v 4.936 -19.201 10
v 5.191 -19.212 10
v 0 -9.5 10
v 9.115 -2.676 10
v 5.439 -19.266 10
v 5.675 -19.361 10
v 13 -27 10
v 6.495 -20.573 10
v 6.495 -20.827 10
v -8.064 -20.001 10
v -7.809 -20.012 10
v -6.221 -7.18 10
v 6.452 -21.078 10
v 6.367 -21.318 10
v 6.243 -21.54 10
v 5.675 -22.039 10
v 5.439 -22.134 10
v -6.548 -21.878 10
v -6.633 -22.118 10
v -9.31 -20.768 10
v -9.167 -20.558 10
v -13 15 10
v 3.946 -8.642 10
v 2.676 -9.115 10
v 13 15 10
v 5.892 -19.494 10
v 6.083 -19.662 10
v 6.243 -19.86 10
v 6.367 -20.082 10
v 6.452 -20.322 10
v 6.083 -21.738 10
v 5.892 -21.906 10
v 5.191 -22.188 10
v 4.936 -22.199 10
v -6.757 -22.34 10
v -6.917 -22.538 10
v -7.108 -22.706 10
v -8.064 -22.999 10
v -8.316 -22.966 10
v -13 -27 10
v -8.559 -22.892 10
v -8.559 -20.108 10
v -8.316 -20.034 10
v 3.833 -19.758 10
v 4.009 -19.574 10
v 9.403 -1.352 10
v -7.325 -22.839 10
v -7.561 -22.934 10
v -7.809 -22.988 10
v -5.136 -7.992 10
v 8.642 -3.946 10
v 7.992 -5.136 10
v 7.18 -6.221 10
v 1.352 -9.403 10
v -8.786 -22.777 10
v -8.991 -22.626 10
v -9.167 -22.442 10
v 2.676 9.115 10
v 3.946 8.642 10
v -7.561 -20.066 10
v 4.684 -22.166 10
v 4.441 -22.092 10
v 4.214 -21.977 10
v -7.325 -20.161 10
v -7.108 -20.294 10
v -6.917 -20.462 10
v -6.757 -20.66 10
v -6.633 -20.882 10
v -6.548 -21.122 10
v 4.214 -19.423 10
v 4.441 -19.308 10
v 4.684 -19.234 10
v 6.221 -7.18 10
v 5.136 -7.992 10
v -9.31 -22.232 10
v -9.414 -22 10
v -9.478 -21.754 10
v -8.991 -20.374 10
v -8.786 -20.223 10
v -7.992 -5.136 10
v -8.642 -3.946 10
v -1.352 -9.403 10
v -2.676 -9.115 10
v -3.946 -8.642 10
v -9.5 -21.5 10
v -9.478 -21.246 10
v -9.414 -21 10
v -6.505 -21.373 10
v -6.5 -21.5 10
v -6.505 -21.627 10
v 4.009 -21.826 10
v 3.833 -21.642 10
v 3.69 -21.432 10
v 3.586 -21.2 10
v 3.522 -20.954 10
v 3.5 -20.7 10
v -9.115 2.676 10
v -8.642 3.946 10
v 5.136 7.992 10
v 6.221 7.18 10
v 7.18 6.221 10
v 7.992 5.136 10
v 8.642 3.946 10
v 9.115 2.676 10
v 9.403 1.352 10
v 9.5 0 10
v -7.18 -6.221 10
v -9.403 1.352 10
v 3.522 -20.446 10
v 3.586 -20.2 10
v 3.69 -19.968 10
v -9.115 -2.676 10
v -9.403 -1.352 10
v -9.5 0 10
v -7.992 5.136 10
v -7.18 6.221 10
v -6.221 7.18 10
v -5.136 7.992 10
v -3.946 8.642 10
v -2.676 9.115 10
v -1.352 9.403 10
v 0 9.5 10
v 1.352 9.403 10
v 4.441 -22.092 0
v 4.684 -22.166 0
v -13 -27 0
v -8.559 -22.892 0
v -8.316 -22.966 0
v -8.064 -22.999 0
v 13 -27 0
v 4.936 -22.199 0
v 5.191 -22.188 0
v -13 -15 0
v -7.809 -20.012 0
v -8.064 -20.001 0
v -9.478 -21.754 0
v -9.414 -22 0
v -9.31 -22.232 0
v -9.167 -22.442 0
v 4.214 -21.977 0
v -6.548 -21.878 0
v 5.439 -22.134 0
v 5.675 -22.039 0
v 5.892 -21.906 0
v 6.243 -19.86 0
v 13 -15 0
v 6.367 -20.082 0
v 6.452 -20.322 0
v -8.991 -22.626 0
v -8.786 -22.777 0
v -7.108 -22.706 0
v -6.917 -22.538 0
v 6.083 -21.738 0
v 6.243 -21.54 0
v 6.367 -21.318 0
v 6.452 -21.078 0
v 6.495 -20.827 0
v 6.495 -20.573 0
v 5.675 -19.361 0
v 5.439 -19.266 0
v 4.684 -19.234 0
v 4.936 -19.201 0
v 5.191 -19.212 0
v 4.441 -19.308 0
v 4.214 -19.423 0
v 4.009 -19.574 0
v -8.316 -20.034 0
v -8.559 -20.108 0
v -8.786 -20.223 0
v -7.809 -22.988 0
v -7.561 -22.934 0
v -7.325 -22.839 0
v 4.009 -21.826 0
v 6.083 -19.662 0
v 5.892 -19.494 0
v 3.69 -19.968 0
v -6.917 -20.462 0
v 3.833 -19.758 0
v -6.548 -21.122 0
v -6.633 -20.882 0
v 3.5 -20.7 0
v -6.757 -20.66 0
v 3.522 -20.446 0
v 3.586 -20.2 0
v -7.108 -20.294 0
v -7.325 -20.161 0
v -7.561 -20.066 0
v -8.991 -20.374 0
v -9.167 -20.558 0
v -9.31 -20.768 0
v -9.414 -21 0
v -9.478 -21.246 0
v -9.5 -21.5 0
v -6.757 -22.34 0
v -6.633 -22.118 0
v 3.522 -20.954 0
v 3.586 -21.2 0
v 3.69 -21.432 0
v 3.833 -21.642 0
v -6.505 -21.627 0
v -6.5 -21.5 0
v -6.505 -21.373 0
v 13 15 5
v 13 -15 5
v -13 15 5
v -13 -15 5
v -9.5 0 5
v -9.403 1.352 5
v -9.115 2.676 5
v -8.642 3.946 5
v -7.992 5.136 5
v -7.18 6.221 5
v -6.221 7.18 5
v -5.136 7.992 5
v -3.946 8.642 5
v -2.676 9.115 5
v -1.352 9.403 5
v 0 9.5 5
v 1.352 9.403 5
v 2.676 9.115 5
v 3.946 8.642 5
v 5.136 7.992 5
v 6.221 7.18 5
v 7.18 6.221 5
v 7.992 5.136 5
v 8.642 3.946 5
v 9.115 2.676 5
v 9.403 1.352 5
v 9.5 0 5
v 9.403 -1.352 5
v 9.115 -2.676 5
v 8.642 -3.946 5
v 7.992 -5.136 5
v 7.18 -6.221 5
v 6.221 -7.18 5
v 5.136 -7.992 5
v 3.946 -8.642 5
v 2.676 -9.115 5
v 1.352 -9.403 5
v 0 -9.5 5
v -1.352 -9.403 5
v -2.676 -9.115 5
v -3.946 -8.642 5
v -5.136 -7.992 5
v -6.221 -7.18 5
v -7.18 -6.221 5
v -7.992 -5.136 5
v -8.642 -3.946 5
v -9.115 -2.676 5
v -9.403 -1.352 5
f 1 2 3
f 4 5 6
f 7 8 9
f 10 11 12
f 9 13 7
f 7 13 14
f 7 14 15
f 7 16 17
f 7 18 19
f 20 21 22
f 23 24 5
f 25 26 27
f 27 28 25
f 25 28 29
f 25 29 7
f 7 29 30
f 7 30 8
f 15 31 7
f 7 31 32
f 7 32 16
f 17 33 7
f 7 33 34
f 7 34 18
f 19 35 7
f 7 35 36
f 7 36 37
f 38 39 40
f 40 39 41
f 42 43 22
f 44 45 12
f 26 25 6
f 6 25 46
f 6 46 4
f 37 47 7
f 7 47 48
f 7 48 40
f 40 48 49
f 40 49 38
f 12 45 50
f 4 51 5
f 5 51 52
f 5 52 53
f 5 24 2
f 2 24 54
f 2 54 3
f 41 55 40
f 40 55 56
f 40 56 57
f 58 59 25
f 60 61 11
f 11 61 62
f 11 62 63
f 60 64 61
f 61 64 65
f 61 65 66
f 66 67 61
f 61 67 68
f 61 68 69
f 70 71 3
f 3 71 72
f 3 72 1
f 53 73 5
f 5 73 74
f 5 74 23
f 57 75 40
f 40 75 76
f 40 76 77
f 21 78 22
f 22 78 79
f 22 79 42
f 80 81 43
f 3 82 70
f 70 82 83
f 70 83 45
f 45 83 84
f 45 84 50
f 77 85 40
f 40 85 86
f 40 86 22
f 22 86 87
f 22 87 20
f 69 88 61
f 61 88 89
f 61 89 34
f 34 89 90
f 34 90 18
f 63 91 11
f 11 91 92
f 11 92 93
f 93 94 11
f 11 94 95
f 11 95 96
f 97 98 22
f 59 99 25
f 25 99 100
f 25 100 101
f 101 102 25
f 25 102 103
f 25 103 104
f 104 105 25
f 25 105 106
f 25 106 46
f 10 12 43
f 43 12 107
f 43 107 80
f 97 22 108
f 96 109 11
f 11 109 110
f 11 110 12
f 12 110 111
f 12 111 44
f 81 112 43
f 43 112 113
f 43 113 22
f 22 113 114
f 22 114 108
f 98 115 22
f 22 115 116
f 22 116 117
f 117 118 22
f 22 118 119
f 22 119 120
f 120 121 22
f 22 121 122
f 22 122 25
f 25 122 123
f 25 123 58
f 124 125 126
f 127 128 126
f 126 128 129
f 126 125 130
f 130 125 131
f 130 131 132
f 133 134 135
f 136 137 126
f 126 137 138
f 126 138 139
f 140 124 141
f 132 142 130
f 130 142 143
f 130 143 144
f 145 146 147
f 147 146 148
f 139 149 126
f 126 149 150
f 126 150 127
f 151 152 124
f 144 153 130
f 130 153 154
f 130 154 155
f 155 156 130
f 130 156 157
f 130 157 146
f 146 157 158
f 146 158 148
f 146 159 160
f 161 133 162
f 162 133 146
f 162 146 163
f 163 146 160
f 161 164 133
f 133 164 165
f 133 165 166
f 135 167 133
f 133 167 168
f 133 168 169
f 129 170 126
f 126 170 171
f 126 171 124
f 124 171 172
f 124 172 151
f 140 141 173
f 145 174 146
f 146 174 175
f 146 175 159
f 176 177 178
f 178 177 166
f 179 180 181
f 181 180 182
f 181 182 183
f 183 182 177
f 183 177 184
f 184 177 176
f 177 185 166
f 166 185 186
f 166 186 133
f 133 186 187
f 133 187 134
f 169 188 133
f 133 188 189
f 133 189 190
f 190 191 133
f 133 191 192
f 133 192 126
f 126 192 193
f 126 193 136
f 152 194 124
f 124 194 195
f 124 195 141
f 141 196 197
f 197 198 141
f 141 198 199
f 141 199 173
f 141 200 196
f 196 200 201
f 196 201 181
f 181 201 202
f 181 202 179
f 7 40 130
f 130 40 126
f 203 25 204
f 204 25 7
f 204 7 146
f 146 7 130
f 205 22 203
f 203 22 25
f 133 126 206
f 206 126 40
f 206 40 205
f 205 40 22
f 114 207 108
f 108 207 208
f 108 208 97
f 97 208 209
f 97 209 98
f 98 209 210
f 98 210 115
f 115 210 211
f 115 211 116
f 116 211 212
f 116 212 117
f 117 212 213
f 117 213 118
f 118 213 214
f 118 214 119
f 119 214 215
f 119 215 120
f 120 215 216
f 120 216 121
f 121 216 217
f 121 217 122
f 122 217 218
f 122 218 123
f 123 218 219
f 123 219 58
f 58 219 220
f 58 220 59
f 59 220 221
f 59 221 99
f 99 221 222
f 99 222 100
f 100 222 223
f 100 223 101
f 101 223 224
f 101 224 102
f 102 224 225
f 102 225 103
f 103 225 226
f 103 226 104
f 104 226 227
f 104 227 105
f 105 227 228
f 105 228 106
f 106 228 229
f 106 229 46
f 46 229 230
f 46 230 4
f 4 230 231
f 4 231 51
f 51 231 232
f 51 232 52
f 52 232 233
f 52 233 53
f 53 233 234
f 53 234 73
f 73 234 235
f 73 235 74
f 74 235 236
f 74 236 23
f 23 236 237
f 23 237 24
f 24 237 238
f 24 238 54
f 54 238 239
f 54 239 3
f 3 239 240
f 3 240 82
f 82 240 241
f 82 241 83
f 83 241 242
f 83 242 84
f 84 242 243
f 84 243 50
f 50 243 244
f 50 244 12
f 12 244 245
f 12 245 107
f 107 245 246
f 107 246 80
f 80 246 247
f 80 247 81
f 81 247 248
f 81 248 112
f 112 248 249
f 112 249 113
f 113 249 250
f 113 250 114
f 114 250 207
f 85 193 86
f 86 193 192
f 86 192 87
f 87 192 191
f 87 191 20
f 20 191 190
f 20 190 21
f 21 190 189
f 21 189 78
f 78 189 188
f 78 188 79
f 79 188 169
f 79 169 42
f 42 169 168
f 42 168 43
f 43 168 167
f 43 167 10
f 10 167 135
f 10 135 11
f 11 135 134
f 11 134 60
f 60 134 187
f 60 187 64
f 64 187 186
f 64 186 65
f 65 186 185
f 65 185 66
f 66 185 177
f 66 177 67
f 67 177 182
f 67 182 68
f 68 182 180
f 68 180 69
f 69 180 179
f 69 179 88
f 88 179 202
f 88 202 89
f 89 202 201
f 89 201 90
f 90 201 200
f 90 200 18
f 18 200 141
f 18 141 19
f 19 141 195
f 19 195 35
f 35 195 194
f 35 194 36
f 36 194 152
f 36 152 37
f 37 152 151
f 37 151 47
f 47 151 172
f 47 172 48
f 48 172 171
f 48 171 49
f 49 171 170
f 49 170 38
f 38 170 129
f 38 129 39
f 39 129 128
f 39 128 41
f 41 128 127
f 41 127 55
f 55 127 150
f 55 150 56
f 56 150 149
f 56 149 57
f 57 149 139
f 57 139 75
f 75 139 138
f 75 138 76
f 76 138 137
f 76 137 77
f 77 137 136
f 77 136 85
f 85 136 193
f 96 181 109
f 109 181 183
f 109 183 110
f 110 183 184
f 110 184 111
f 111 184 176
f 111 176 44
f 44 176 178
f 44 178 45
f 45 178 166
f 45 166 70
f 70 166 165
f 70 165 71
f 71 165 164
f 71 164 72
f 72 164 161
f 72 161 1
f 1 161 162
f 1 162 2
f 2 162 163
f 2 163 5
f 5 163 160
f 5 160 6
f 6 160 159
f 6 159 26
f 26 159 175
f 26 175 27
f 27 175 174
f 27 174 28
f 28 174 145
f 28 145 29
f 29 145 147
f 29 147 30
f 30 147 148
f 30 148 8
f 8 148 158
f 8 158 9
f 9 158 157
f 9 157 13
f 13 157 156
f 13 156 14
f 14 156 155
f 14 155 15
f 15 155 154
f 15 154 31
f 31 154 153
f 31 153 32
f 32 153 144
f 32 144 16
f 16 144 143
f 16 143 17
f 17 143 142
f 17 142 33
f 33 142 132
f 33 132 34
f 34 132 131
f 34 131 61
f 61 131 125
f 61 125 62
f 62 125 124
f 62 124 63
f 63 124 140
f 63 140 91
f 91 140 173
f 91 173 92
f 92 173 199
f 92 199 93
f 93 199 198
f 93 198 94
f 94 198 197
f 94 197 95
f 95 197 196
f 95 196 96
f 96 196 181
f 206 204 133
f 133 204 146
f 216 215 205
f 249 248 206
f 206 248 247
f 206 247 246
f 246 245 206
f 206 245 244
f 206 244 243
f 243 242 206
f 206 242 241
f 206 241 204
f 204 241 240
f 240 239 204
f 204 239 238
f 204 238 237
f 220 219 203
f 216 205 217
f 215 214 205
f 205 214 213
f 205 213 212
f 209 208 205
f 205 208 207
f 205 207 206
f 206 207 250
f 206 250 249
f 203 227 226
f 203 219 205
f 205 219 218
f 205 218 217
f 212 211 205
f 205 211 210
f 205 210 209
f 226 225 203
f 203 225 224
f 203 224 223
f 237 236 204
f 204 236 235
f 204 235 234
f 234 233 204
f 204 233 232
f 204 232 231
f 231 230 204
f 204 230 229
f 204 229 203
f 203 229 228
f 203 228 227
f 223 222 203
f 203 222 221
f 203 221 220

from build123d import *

# Parameters (mm, degrees)
CROQUIS1_W              = 26
CROQUIS1_H              = 42
CROQUIS1_R              = 9.5
CROQUIS1_R_2            = 1.5
SALIENTE_EXTRUIR1_DEPTH = 10
CROQUIS2_W              = 5
CROQUIS2_H              = 30
CORTAR_EXTRUIR1_DEPTH   = 40


with BuildPart() as part:
    # Croquis1 → Saliente-Extruir1 (new body)
    with BuildSketch(Plane.XY):
        with Locations((0, -6)):
            Rectangle(CROQUIS1_W, CROQUIS1_H)
        Circle(CROQUIS1_R, mode=Mode.SUBTRACT)
        with Locations((-8, -21.5)):
            Circle(CROQUIS1_R_2, mode=Mode.SUBTRACT)
        with Locations((5, -20.7)):
            Circle(CROQUIS1_R_2, mode=Mode.SUBTRACT)
    extrude(amount=SALIENTE_EXTRUIR1_DEPTH)

    # Croquis2 → Cortar-Extruir1 (cut)
    with BuildSketch(Plane.ZY.offset(13)):
        with Locations((2.5, 0)):
            Rectangle(CROQUIS2_W, CROQUIS2_H)
    extrude(amount=-CORTAR_EXTRUIR1_DEPTH, mode=Mode.SUBTRACT)


solid = part.part
